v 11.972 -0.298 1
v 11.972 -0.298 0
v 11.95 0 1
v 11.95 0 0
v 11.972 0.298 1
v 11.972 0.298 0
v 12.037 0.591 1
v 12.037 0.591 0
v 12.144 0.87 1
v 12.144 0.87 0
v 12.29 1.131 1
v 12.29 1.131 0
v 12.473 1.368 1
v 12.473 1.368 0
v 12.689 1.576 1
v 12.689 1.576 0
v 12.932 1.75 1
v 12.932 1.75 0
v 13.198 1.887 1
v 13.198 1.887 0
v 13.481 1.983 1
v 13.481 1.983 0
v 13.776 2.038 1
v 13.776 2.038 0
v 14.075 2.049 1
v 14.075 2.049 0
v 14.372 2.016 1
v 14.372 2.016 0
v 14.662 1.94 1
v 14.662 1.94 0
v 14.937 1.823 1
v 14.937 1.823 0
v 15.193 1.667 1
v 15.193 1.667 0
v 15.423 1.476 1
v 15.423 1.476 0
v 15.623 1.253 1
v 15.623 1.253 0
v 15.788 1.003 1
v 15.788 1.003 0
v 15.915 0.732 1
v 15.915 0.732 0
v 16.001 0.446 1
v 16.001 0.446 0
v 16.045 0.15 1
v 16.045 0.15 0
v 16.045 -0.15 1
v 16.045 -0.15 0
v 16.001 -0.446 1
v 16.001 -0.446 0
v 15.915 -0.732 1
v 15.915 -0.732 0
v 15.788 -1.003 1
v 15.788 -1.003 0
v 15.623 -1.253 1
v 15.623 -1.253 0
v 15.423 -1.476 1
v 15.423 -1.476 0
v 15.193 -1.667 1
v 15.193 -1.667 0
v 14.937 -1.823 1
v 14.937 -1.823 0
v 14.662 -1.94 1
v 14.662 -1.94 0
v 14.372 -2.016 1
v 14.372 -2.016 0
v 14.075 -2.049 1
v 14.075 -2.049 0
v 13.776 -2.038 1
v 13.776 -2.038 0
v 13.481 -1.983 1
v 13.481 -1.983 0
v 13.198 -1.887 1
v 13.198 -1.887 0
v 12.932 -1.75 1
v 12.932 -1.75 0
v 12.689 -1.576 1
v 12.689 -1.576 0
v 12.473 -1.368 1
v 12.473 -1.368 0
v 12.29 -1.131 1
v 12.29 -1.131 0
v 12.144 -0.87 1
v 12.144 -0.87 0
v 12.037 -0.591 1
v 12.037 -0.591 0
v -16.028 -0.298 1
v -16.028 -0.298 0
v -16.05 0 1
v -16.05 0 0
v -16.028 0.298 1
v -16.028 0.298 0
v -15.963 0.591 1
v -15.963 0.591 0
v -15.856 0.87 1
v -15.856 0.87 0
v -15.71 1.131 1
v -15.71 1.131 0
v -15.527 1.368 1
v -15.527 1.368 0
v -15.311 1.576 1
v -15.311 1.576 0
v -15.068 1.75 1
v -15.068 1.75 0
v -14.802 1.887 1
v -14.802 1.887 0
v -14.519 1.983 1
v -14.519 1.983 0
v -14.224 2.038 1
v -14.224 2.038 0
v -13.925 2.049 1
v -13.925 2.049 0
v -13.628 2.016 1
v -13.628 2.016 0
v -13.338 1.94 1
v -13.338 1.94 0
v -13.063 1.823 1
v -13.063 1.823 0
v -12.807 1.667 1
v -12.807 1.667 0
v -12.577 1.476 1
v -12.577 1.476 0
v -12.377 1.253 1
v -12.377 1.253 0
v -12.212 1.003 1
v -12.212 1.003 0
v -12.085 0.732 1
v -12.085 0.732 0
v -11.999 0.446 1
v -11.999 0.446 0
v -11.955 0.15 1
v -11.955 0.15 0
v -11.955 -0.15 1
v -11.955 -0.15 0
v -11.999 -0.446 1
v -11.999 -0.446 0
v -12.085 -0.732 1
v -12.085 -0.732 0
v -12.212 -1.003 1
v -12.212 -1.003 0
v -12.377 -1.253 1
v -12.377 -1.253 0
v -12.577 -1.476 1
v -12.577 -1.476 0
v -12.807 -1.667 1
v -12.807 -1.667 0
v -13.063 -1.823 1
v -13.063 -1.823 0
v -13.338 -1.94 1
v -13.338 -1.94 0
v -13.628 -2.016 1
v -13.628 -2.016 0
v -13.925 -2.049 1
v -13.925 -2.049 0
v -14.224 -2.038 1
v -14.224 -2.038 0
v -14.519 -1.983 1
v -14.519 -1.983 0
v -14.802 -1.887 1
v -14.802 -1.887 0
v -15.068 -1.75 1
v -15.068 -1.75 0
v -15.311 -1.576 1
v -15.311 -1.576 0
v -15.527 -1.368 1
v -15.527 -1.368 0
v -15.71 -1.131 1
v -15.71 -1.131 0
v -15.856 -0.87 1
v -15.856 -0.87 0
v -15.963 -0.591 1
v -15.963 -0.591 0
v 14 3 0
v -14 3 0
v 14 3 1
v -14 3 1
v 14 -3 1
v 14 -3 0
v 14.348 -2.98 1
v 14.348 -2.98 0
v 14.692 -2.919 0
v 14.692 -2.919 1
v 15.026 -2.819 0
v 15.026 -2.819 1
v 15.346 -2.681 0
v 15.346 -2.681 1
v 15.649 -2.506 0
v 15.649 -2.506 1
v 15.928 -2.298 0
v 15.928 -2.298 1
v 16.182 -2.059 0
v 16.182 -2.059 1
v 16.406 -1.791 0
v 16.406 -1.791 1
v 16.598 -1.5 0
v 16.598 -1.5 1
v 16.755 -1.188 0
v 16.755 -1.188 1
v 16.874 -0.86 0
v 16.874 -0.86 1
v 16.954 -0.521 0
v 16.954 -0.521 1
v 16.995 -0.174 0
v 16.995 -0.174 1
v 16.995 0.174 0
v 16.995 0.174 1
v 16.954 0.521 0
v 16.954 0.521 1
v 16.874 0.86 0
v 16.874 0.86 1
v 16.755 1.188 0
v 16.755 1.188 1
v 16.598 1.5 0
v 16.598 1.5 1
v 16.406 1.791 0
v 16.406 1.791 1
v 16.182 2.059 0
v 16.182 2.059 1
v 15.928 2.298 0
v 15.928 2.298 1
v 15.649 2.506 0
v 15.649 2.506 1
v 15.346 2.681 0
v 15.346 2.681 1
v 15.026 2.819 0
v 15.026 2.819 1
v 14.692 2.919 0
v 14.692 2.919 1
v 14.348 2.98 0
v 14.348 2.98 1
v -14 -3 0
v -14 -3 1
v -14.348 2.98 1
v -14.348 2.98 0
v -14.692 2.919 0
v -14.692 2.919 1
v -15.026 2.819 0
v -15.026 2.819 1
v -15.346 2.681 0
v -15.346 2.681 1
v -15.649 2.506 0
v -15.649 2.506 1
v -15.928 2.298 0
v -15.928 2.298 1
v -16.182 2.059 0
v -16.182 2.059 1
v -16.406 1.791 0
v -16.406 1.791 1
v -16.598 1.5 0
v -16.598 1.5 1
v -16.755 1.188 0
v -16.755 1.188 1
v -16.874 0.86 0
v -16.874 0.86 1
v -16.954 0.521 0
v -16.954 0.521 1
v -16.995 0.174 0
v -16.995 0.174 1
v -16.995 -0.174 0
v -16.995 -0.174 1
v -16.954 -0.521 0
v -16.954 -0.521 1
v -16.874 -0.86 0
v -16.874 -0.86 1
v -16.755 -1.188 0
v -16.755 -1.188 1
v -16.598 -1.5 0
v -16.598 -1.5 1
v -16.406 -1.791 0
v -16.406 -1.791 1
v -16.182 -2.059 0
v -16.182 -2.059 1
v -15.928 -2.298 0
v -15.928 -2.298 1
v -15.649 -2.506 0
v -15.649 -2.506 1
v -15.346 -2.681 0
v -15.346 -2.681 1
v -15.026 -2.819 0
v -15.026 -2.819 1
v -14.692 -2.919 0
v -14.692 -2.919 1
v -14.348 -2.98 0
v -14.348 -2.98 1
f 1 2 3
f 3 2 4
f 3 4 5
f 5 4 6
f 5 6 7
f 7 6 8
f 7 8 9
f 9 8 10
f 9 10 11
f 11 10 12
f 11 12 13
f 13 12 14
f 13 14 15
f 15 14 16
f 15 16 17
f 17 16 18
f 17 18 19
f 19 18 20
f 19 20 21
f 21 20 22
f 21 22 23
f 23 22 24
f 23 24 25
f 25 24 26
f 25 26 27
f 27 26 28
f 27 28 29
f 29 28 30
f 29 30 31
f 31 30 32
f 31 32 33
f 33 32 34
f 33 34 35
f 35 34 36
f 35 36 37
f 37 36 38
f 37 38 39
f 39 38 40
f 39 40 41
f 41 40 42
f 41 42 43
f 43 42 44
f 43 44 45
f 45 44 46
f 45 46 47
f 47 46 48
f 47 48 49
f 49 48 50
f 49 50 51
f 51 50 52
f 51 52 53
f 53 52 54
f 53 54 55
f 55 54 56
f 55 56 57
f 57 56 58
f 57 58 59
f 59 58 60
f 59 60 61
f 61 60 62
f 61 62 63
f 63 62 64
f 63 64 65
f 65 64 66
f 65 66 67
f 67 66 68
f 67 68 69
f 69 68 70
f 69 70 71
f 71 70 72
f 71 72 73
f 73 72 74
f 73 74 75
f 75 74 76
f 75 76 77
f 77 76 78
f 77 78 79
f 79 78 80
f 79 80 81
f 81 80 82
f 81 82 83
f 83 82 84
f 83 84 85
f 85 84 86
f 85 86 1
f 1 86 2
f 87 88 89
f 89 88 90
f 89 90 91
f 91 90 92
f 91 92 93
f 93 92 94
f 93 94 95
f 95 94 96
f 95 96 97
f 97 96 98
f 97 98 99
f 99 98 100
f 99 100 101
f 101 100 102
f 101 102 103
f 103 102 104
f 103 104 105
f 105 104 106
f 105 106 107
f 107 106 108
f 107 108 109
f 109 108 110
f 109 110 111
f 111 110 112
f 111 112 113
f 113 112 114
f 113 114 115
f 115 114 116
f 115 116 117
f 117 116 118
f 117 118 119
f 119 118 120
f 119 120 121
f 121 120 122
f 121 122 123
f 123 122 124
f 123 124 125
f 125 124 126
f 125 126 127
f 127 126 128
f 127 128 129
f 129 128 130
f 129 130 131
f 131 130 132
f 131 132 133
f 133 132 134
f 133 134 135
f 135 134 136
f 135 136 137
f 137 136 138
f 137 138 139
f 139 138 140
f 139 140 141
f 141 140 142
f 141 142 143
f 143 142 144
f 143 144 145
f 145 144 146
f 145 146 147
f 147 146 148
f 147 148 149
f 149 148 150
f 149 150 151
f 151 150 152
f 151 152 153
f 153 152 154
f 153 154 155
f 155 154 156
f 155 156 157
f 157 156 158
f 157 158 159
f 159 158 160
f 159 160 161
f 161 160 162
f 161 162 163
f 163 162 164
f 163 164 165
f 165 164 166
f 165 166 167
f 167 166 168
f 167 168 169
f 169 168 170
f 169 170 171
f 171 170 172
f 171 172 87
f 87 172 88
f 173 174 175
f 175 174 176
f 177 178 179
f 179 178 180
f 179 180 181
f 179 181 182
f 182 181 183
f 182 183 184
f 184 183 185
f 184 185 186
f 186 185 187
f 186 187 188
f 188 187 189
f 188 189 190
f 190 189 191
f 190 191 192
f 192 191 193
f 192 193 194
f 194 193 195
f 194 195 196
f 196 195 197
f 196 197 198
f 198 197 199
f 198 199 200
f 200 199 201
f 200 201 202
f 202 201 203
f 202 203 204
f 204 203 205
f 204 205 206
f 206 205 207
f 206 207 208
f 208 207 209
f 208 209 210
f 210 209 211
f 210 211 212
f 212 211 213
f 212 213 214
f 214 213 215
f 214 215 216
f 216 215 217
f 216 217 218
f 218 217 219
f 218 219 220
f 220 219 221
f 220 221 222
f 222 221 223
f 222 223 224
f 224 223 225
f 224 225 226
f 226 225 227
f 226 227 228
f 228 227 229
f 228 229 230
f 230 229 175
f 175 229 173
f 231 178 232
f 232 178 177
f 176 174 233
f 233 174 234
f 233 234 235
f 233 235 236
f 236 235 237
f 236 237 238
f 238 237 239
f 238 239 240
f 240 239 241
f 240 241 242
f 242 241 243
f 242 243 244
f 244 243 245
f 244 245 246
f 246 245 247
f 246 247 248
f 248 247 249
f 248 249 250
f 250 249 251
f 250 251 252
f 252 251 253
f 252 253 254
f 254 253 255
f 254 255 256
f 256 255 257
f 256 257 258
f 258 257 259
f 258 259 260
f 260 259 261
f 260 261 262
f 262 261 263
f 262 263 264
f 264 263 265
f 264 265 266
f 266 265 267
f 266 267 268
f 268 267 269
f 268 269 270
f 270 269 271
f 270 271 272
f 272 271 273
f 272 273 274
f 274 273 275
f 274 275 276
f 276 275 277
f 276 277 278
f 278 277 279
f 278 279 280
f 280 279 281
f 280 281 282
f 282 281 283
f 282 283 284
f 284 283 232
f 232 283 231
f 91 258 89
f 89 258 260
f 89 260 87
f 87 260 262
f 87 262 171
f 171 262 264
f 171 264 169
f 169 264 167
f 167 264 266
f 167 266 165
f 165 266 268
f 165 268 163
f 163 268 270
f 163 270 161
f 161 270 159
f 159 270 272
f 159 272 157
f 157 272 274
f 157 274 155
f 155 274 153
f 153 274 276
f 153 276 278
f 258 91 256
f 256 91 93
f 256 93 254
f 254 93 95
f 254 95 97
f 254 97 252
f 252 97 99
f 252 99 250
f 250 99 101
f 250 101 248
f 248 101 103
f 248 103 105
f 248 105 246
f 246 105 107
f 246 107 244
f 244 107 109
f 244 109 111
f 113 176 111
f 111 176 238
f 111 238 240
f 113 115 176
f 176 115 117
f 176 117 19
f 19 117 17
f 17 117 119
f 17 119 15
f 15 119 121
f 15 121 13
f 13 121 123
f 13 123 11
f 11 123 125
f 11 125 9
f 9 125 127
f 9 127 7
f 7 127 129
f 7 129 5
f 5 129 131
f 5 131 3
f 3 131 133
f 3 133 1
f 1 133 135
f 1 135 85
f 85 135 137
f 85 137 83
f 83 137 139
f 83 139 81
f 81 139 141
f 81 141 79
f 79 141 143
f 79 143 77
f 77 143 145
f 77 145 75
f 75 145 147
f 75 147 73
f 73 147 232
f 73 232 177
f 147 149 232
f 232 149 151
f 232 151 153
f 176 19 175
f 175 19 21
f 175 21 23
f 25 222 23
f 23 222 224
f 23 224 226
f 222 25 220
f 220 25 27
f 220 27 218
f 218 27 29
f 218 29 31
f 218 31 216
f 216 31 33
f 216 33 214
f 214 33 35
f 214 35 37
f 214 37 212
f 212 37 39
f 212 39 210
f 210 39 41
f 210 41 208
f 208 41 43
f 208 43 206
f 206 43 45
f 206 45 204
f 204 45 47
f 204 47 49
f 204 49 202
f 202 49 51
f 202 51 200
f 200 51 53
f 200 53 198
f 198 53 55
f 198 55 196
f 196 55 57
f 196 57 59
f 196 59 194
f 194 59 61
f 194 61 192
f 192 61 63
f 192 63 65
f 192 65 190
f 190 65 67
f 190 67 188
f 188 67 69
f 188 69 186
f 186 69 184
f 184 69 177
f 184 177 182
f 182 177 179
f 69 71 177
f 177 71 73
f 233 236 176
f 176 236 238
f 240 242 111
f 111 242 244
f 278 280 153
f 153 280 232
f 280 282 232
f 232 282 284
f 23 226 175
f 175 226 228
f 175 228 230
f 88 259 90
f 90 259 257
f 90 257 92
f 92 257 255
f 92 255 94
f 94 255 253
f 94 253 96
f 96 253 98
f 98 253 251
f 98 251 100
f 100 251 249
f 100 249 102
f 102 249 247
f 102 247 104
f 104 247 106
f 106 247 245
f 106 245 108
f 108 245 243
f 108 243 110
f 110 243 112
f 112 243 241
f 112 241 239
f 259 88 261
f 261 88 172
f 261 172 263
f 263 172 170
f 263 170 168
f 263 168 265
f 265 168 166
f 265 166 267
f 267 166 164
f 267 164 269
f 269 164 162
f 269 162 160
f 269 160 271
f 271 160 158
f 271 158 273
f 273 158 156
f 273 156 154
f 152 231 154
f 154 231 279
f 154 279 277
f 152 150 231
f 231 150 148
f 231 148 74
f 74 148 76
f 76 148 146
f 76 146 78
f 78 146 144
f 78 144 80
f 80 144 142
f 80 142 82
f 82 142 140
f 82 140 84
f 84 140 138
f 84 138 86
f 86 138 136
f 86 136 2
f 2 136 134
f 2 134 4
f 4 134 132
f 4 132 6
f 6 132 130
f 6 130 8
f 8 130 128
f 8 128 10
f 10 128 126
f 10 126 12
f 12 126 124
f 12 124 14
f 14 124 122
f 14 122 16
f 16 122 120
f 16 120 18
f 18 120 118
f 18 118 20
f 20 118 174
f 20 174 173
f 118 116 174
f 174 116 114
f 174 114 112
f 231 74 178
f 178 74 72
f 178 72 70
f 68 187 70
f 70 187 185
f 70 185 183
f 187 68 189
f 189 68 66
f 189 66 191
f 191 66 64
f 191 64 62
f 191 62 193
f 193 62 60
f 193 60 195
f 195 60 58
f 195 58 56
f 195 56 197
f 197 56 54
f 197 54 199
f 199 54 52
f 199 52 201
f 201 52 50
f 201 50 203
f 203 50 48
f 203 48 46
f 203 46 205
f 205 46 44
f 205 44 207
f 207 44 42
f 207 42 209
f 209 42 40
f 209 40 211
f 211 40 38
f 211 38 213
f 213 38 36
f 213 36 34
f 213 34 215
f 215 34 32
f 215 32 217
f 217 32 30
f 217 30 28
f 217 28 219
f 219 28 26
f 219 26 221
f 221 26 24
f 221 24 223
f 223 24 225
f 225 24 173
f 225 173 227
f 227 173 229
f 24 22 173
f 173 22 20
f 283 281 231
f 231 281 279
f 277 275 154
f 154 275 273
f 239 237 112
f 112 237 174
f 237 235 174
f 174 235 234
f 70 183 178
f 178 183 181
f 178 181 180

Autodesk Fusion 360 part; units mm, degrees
sketch "Sketch1" plane through (0, 0, 0) normal (0, 0, 1) x (1, 0, 0)
  circle A0 centre (14, 0) radius 2.05
  circle A1 centre (14, 0) radius 3
  circle A2 centre (-14, 0) radius 3
  circle A3 centre (-14, 0) radius 2.05
  line L0 (-14, 3) -> (14, 3)
  line L1 (-14, -3) -> (14, -3)
  line L2 (-14, 0) -> (14, 0) construction
  dimension "d1" = 4.1
  dimension "d2" = 6
  dimension "d3" = 28
  dimension "d4" = 6
  dimension "d5" = 4.1
extrude "Extrude1" add sketch "Sketch1" along normal blind 1
equation "d4 = d2"
equation "d5 = d1"
